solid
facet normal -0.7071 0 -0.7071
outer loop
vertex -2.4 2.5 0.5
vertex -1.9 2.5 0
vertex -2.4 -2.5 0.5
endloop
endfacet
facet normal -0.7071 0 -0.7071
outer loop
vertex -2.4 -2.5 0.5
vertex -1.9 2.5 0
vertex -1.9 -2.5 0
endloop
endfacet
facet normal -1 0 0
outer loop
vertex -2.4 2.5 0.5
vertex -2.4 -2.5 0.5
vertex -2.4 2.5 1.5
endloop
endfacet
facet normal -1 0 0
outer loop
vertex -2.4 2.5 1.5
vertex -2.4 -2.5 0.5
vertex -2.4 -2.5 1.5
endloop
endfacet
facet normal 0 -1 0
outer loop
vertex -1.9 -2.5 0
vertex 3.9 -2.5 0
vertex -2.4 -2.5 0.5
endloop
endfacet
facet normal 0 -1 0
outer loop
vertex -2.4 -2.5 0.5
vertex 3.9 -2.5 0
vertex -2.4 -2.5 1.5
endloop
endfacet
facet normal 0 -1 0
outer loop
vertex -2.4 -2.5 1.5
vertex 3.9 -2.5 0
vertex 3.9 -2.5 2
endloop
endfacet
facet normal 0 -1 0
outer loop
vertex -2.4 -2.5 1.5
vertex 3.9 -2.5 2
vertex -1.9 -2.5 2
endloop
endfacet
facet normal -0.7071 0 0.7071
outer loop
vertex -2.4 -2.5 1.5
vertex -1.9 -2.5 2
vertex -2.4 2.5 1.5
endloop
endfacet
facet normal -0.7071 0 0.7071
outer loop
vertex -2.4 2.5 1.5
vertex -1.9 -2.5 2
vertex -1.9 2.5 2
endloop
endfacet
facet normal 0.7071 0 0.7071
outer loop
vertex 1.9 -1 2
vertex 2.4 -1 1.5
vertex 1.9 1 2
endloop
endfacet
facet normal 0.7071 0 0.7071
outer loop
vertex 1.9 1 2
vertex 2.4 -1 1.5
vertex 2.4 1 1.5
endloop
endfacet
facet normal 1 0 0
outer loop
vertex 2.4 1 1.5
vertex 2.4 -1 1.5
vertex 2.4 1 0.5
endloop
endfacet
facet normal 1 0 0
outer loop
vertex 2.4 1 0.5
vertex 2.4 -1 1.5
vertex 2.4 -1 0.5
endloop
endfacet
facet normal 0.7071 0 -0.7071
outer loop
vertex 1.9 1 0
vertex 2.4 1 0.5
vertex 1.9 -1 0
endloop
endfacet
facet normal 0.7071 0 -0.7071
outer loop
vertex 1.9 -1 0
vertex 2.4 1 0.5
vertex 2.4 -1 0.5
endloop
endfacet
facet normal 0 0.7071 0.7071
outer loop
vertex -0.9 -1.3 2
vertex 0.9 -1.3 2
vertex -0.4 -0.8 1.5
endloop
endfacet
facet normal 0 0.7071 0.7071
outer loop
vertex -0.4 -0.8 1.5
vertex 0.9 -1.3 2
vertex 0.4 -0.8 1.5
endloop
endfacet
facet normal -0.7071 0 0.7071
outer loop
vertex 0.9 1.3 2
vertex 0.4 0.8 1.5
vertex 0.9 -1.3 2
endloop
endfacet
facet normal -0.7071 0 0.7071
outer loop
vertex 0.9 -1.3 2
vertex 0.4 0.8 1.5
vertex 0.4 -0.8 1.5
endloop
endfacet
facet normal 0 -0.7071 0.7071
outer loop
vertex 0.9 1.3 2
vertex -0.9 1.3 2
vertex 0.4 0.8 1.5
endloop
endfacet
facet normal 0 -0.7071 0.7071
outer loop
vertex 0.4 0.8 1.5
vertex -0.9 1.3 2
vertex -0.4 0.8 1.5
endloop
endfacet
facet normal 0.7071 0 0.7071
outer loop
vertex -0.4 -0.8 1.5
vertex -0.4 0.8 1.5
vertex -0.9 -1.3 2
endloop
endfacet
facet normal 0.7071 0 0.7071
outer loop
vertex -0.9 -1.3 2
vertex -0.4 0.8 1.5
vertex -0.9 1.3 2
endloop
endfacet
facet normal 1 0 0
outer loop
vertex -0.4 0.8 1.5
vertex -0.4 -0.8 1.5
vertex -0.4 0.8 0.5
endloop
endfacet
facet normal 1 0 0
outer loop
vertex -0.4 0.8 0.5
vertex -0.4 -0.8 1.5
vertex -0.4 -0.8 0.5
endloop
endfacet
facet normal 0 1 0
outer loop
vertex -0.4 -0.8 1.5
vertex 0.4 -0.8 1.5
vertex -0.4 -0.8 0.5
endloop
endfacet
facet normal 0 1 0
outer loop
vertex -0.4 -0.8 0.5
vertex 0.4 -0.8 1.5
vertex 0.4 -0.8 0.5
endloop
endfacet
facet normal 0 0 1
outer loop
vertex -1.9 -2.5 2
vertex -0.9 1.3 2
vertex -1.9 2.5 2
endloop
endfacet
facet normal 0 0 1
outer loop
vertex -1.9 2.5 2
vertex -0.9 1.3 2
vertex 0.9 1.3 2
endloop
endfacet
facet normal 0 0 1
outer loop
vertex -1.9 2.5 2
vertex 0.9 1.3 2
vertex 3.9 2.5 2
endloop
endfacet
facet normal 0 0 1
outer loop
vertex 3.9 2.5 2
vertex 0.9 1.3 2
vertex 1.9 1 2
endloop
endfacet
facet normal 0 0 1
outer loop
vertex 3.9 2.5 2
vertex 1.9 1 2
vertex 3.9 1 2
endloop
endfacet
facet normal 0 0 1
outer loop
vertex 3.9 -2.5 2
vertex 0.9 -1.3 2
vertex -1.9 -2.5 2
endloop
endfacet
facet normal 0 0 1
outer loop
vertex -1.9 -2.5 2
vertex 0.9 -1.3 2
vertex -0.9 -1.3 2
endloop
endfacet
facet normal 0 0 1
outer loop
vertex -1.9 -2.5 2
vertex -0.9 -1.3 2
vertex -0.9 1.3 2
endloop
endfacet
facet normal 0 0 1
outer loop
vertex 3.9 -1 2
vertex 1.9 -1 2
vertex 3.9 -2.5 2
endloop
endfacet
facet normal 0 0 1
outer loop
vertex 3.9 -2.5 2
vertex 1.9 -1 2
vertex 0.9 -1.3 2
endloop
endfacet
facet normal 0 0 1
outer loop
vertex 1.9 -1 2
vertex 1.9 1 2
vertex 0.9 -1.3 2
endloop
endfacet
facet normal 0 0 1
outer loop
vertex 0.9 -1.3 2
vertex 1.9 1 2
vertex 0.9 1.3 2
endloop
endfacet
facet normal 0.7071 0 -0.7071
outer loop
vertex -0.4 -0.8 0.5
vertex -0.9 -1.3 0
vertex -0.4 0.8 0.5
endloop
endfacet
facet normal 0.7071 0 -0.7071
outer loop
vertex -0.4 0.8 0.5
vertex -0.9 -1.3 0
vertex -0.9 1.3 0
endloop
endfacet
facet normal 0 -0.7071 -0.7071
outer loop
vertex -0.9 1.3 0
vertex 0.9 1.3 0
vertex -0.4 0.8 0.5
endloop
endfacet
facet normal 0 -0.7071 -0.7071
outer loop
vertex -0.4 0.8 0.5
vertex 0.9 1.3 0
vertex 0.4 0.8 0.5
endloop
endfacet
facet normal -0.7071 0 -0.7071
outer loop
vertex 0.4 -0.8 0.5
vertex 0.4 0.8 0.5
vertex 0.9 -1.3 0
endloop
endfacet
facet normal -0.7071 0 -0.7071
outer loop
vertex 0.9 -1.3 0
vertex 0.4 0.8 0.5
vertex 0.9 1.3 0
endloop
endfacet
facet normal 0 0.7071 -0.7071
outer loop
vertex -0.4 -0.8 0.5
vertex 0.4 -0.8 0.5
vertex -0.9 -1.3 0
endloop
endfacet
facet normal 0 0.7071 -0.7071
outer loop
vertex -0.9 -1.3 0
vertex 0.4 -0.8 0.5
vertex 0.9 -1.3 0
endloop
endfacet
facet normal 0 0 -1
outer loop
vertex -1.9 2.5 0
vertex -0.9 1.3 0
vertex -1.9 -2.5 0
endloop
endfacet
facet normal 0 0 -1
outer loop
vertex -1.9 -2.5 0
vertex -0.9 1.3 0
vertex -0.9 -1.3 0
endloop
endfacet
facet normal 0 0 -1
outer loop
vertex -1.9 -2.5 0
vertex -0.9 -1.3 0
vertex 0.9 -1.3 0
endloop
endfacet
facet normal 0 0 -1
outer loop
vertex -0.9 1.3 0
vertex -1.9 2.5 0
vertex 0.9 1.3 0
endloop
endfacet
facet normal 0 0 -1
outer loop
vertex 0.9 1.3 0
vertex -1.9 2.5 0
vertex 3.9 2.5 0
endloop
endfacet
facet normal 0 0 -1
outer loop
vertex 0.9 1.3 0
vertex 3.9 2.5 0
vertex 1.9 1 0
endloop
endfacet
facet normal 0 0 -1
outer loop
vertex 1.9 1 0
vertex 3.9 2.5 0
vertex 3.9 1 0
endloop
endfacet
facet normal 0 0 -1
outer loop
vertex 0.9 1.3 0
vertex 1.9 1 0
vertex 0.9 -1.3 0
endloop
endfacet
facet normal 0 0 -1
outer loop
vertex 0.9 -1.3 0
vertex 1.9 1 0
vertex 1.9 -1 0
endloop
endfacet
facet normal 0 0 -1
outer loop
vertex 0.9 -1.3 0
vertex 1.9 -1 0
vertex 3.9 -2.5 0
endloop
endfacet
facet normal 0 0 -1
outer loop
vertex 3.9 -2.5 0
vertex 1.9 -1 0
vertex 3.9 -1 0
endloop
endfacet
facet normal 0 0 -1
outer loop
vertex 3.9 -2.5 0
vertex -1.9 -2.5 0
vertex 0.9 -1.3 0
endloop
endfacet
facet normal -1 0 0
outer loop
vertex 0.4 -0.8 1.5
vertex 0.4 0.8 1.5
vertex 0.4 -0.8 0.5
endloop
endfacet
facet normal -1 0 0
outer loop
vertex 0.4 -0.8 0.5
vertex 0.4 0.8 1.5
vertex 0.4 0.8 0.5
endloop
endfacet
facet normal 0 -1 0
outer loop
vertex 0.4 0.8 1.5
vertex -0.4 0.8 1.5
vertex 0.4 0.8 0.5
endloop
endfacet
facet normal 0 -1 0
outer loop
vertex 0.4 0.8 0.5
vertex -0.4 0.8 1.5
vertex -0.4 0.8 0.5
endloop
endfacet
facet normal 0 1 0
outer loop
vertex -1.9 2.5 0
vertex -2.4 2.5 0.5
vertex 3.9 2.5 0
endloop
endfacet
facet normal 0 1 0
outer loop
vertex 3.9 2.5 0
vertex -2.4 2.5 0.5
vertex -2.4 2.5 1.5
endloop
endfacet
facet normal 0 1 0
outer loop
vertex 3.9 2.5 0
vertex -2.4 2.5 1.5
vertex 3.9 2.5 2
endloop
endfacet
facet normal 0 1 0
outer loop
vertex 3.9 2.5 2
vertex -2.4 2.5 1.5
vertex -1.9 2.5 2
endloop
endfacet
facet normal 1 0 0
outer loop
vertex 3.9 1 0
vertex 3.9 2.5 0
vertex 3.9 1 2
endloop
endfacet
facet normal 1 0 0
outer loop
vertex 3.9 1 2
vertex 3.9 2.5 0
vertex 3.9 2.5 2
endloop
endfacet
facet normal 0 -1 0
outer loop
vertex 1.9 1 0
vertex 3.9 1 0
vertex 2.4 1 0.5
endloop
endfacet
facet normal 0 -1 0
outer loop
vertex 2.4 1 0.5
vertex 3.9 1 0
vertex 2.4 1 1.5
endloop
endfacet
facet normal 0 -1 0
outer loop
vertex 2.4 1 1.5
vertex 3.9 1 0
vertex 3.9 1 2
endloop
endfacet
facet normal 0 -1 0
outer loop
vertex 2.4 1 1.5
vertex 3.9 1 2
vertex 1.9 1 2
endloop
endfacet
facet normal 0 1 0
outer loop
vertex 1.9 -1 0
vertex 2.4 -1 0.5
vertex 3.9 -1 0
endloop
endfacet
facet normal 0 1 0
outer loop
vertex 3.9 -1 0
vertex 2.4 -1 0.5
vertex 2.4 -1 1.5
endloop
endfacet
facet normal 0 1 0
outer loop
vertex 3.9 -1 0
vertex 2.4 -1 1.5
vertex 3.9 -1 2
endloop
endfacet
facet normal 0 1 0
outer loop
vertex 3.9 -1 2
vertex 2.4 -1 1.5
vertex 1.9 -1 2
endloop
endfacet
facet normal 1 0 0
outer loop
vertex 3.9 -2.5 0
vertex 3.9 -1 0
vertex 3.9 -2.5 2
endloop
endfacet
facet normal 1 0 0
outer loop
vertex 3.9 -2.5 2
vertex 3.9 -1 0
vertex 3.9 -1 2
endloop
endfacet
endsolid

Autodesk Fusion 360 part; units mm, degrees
sketch "Sketch2" plane through (0, 0, 0) normal (0, 0, 1) x (1, 0, 0)
  line L0 (-2.4, 2.5) -> (2.4, 2.5)
  line L1 (2.4, 2.5) -> (2.4, -2.5)
  line L2 (2.4, -2.5) -> (-2.4, -2.5)
  line L3 (-2.4, -2.5) -> (-2.4, 2.5)
  line L4 (-0.4, -0.8) -> (0.4, -0.8)
  line L5 (0.4, -0.8) -> (0.4, 0.8)
  line L6 (0.4, 0.8) -> (-0.4, 0.8)
  line L7 (-0.4, 0.8) -> (-0.4, -0.8)
  line L8 (0, 2.5) -> (0, -2.5) construction
  line L9 (-0.4, 0) -> (0.4, 0) construction
  line L10 (2.4, 2.5) -> (3.9, 2.5)
  line L11 (3.9, 2.5) -> (3.9, 1)
  line L12 (3.9, 1) -> (2.4, 1)
  line L13 (2.4, 1) -> (2.4, 2.5)
  line L14 (2.4, -2.5) -> (3.9, -2.5)
  line L15 (3.9, -2.5) -> (3.9, -1)
  line L16 (3.9, -1) -> (2.4, -1)
  line L17 (2.4, -1) -> (2.4, -2.5)
  line L18 (2.4, 1) -> (-2.4, 1)
  line L19 (2.4, -1) -> (-2.4, -1)
  dimension "d26" = 1.6
  dimension "d28" = 0.8
  dimension "d38" = 5
  dimension "d41" = 2
  dimension "d42" = 1.5
  dimension "d43" = 1.5
extrude "Extrude5" add sketch "Sketch2" along normal blind 2
chamfer "Chamfer1" distance 0.5 angle 45 12 edges at (0.4, 0, 0) (-0.4, 0, 0) (0, 0.8, 0) (0, 0.8, 2) (0, -0.8, 0) (0, -0.8, 2) (0.4, 0, 2) (-0.4, 0, 2) (2.4, 0, 0) (2.4, 0, 2) (-2.4, 0, 2) (-2.4, 0, 0)
equation "wire_spacing = 0.8 mm"
